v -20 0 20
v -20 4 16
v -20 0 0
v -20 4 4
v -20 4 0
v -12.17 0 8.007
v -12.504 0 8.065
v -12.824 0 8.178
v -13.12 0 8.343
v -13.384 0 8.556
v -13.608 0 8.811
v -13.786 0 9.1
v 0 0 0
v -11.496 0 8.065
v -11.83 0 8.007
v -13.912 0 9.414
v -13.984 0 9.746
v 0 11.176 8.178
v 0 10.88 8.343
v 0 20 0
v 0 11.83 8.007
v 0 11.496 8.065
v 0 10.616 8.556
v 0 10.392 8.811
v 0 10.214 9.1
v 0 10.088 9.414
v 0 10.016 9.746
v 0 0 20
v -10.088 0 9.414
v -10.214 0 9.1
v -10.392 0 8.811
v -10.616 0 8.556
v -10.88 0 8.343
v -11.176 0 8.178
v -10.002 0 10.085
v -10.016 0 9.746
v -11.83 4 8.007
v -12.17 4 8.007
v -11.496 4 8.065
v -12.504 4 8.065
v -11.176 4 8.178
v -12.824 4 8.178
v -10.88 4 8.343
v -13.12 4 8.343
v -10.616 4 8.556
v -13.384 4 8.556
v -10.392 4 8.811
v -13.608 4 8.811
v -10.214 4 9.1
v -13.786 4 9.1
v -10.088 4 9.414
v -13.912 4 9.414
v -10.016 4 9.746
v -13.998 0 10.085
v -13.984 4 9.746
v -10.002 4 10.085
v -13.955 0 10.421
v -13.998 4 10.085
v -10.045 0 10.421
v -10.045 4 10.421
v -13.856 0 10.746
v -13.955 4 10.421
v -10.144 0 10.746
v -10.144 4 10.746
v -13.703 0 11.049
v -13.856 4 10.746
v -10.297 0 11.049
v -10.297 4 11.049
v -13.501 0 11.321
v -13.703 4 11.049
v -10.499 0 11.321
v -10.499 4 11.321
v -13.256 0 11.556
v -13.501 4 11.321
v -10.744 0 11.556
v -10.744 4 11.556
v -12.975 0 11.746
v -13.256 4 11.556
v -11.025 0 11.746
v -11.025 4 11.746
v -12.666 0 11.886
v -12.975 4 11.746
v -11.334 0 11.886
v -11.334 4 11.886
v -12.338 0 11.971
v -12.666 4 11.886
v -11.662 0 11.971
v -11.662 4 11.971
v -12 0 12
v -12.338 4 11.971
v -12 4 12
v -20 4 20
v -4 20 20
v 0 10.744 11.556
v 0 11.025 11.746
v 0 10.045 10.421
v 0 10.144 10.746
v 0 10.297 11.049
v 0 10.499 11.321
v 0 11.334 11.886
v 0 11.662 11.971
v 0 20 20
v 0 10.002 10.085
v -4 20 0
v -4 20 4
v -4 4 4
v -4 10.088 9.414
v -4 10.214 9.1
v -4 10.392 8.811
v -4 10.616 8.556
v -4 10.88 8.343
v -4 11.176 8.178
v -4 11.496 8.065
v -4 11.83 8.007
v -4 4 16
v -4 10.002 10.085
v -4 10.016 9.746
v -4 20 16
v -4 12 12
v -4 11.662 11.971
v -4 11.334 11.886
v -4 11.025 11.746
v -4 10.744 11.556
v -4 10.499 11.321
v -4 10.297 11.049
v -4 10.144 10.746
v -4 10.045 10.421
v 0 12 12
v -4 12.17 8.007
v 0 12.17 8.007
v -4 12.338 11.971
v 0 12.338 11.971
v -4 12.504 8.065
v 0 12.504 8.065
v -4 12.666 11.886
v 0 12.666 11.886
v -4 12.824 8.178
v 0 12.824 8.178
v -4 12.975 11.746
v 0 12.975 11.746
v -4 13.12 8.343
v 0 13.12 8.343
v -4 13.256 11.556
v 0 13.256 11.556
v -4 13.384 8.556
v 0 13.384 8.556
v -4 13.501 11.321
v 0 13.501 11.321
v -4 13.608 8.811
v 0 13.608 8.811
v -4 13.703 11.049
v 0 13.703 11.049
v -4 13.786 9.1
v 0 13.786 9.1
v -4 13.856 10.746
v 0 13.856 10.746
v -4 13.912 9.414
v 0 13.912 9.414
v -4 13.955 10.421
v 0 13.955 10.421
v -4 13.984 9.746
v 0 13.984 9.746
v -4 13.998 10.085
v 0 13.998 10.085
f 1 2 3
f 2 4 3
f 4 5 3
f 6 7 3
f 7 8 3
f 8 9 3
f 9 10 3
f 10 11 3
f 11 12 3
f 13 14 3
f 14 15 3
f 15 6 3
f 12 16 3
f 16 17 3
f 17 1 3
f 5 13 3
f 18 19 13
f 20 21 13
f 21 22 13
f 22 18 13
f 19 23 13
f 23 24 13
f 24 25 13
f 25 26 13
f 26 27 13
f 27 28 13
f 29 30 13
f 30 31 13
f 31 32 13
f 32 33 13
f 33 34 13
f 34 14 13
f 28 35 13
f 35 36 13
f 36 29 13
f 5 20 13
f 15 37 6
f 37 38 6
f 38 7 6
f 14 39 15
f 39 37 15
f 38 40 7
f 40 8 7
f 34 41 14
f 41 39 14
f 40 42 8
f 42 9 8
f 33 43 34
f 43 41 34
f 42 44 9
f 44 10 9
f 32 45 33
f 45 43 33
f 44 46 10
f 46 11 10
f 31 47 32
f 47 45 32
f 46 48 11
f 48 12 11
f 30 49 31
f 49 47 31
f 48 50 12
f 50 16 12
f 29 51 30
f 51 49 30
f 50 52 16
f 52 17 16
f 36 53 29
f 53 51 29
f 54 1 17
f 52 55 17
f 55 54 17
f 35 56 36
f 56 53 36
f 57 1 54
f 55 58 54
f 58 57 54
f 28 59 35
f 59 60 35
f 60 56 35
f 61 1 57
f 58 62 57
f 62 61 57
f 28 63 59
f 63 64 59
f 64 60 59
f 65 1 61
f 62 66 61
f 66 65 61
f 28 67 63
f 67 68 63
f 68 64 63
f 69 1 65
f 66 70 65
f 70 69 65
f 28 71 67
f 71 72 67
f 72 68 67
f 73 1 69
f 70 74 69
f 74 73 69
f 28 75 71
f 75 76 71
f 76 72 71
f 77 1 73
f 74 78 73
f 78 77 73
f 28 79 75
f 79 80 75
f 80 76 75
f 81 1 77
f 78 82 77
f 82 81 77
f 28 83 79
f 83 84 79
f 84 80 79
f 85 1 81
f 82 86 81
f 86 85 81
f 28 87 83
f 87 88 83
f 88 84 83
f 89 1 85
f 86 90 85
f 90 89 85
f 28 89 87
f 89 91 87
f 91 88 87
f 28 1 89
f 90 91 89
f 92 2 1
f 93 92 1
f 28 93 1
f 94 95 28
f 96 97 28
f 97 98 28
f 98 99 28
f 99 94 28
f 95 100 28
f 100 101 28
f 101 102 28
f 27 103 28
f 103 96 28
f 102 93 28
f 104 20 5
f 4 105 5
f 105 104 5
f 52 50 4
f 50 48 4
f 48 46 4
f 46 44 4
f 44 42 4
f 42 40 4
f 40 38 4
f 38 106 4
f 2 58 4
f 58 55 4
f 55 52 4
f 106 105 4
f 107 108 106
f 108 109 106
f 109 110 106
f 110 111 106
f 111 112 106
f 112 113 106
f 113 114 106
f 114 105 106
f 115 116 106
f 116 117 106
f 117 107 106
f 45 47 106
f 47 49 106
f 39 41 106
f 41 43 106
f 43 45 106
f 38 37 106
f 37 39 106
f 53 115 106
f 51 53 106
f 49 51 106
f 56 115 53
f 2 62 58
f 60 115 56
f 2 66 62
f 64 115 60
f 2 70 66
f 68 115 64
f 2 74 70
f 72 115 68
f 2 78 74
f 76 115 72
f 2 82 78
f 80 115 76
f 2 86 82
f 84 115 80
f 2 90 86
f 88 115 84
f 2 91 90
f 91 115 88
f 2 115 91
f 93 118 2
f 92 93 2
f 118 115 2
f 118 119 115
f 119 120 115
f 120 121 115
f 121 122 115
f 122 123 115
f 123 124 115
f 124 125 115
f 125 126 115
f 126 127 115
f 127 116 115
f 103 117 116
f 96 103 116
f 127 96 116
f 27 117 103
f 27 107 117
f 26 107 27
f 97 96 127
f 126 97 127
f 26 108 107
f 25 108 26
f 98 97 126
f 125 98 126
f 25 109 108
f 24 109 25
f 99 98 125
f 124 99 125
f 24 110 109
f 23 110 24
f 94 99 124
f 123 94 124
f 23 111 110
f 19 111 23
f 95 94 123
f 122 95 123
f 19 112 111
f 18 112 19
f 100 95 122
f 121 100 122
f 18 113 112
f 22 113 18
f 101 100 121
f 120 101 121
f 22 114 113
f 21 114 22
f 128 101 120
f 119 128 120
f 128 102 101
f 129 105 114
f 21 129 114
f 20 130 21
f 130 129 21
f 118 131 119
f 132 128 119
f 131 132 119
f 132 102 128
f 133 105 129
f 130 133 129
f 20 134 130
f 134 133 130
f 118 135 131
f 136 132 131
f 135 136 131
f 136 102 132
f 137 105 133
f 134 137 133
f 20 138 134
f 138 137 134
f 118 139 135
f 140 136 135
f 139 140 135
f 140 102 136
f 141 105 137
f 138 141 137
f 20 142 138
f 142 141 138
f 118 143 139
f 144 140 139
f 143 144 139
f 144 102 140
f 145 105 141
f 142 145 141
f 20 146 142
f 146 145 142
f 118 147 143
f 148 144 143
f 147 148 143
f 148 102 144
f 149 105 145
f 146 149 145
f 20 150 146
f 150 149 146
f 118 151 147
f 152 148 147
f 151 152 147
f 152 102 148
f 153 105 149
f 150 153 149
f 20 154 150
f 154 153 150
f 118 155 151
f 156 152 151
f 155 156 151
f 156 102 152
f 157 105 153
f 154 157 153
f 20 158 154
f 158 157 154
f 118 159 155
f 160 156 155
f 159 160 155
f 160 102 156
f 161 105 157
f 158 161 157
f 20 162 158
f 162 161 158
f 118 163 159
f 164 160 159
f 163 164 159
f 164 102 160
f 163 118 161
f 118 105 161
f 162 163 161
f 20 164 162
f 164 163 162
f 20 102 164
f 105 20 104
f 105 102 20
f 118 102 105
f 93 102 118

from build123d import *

# Parameters (mm, degrees)
BOSS_EXTRUDE1_DEPTH = 20
BOSS_EXTRUDE2_DEPTH = 4
BOSS_EXTRUDE3_DEPTH = 4
SKETCH4_R           = 2
CUT_EXTRUDE1_DEPTH  = 4
SKETCH5_R           = 2
CUT_EXTRUDE2_DEPTH  = 4


with BuildPart() as part:
    # Sketch1 → Boss-Extrude1 (new body)
    with BuildSketch(Plane.XY):
        Polygon((0, 0), (-20, 0), (-20, 4), (-4, 4), (-4, 20), (0, 20), align=None)
    extrude(amount=BOSS_EXTRUDE1_DEPTH)

    # Sketch2 → Boss-Extrude2 (add)
    with BuildSketch(Plane(origin=(0, 0, 0), x_dir=(-1, 0, 0), z_dir=(0, 0, -1))):
        Polygon((4, 20), (20, 4), (4, 4), align=None)
    extrude(amount=-BOSS_EXTRUDE2_DEPTH)

    # Sketch3 → Boss-Extrude3 (add)
    with BuildSketch(Plane.XY.offset(20)):
        Polygon((-4, 20), (-20, 4), (-4, 4), align=None)
    extrude(amount=-BOSS_EXTRUDE3_DEPTH)

    # Sketch4 → Cut-Extrude1 (cut)
    with BuildSketch(Plane(origin=(0, 4, 0), x_dir=(1, 0, 0), z_dir=(0, 1, 0))):
        with Locations((-12, -10)):
            Circle(SKETCH4_R)
    extrude(amount=-CUT_EXTRUDE1_DEPTH, mode=Mode.SUBTRACT)

    # Sketch5 → Cut-Extrude2 (cut)
    with BuildSketch(Plane.ZY.offset(4)):
        with Locations((10, 12)):
            Circle(SKETCH5_R)
    extrude(amount=-CUT_EXTRUDE2_DEPTH, mode=Mode.SUBTRACT)


solid = part.part
